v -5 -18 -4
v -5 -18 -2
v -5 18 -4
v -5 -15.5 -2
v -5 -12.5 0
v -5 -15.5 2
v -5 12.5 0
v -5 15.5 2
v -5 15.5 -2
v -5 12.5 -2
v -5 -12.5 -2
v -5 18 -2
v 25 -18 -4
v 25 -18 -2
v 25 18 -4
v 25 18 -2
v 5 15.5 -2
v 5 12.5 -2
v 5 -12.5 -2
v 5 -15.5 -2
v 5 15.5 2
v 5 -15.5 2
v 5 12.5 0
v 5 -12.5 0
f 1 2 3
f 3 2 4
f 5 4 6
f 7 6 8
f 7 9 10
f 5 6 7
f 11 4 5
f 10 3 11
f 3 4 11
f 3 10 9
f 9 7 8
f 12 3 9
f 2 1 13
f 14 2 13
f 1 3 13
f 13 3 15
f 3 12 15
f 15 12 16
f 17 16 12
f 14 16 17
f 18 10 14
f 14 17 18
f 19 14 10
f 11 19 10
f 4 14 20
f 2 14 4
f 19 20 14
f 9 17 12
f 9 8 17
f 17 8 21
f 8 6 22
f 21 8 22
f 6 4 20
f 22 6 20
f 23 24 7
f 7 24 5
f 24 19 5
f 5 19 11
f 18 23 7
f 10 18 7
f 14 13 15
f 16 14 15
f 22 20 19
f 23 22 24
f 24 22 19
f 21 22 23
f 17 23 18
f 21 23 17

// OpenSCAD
//----------------------------------------------------------------------------------------------
//-- Belt holder, By Obijuan (juan@iearobotics.com)
//-- August, 20th, 2012
//----------------------------------------------------------------------------------------------
//-- GPL license
//----------------------------------------------------------------------------------------------

//-- Part parameters
lx1 = 10;
ly1 = 25;
w1=3;
w2=5;
w3=20;
h1=2;
h2=2;
h3=2;
extra=2;

//-- Top part. The belt goes though here
difference() {
  cube([lx1, ly1+2*w1,h1+h2],center=true);
  translate([0,0,-h1])
    color("green") cube([lx1+extra, ly1, h1+extra],center=true);
}

//-- Base
translate([(lx1+w3)/2 - lx1/2, 0, -(h1+h2+h3)/2  ])
  cube([lx1+w3, ly1+2*w1+w2, h3],center=true);
